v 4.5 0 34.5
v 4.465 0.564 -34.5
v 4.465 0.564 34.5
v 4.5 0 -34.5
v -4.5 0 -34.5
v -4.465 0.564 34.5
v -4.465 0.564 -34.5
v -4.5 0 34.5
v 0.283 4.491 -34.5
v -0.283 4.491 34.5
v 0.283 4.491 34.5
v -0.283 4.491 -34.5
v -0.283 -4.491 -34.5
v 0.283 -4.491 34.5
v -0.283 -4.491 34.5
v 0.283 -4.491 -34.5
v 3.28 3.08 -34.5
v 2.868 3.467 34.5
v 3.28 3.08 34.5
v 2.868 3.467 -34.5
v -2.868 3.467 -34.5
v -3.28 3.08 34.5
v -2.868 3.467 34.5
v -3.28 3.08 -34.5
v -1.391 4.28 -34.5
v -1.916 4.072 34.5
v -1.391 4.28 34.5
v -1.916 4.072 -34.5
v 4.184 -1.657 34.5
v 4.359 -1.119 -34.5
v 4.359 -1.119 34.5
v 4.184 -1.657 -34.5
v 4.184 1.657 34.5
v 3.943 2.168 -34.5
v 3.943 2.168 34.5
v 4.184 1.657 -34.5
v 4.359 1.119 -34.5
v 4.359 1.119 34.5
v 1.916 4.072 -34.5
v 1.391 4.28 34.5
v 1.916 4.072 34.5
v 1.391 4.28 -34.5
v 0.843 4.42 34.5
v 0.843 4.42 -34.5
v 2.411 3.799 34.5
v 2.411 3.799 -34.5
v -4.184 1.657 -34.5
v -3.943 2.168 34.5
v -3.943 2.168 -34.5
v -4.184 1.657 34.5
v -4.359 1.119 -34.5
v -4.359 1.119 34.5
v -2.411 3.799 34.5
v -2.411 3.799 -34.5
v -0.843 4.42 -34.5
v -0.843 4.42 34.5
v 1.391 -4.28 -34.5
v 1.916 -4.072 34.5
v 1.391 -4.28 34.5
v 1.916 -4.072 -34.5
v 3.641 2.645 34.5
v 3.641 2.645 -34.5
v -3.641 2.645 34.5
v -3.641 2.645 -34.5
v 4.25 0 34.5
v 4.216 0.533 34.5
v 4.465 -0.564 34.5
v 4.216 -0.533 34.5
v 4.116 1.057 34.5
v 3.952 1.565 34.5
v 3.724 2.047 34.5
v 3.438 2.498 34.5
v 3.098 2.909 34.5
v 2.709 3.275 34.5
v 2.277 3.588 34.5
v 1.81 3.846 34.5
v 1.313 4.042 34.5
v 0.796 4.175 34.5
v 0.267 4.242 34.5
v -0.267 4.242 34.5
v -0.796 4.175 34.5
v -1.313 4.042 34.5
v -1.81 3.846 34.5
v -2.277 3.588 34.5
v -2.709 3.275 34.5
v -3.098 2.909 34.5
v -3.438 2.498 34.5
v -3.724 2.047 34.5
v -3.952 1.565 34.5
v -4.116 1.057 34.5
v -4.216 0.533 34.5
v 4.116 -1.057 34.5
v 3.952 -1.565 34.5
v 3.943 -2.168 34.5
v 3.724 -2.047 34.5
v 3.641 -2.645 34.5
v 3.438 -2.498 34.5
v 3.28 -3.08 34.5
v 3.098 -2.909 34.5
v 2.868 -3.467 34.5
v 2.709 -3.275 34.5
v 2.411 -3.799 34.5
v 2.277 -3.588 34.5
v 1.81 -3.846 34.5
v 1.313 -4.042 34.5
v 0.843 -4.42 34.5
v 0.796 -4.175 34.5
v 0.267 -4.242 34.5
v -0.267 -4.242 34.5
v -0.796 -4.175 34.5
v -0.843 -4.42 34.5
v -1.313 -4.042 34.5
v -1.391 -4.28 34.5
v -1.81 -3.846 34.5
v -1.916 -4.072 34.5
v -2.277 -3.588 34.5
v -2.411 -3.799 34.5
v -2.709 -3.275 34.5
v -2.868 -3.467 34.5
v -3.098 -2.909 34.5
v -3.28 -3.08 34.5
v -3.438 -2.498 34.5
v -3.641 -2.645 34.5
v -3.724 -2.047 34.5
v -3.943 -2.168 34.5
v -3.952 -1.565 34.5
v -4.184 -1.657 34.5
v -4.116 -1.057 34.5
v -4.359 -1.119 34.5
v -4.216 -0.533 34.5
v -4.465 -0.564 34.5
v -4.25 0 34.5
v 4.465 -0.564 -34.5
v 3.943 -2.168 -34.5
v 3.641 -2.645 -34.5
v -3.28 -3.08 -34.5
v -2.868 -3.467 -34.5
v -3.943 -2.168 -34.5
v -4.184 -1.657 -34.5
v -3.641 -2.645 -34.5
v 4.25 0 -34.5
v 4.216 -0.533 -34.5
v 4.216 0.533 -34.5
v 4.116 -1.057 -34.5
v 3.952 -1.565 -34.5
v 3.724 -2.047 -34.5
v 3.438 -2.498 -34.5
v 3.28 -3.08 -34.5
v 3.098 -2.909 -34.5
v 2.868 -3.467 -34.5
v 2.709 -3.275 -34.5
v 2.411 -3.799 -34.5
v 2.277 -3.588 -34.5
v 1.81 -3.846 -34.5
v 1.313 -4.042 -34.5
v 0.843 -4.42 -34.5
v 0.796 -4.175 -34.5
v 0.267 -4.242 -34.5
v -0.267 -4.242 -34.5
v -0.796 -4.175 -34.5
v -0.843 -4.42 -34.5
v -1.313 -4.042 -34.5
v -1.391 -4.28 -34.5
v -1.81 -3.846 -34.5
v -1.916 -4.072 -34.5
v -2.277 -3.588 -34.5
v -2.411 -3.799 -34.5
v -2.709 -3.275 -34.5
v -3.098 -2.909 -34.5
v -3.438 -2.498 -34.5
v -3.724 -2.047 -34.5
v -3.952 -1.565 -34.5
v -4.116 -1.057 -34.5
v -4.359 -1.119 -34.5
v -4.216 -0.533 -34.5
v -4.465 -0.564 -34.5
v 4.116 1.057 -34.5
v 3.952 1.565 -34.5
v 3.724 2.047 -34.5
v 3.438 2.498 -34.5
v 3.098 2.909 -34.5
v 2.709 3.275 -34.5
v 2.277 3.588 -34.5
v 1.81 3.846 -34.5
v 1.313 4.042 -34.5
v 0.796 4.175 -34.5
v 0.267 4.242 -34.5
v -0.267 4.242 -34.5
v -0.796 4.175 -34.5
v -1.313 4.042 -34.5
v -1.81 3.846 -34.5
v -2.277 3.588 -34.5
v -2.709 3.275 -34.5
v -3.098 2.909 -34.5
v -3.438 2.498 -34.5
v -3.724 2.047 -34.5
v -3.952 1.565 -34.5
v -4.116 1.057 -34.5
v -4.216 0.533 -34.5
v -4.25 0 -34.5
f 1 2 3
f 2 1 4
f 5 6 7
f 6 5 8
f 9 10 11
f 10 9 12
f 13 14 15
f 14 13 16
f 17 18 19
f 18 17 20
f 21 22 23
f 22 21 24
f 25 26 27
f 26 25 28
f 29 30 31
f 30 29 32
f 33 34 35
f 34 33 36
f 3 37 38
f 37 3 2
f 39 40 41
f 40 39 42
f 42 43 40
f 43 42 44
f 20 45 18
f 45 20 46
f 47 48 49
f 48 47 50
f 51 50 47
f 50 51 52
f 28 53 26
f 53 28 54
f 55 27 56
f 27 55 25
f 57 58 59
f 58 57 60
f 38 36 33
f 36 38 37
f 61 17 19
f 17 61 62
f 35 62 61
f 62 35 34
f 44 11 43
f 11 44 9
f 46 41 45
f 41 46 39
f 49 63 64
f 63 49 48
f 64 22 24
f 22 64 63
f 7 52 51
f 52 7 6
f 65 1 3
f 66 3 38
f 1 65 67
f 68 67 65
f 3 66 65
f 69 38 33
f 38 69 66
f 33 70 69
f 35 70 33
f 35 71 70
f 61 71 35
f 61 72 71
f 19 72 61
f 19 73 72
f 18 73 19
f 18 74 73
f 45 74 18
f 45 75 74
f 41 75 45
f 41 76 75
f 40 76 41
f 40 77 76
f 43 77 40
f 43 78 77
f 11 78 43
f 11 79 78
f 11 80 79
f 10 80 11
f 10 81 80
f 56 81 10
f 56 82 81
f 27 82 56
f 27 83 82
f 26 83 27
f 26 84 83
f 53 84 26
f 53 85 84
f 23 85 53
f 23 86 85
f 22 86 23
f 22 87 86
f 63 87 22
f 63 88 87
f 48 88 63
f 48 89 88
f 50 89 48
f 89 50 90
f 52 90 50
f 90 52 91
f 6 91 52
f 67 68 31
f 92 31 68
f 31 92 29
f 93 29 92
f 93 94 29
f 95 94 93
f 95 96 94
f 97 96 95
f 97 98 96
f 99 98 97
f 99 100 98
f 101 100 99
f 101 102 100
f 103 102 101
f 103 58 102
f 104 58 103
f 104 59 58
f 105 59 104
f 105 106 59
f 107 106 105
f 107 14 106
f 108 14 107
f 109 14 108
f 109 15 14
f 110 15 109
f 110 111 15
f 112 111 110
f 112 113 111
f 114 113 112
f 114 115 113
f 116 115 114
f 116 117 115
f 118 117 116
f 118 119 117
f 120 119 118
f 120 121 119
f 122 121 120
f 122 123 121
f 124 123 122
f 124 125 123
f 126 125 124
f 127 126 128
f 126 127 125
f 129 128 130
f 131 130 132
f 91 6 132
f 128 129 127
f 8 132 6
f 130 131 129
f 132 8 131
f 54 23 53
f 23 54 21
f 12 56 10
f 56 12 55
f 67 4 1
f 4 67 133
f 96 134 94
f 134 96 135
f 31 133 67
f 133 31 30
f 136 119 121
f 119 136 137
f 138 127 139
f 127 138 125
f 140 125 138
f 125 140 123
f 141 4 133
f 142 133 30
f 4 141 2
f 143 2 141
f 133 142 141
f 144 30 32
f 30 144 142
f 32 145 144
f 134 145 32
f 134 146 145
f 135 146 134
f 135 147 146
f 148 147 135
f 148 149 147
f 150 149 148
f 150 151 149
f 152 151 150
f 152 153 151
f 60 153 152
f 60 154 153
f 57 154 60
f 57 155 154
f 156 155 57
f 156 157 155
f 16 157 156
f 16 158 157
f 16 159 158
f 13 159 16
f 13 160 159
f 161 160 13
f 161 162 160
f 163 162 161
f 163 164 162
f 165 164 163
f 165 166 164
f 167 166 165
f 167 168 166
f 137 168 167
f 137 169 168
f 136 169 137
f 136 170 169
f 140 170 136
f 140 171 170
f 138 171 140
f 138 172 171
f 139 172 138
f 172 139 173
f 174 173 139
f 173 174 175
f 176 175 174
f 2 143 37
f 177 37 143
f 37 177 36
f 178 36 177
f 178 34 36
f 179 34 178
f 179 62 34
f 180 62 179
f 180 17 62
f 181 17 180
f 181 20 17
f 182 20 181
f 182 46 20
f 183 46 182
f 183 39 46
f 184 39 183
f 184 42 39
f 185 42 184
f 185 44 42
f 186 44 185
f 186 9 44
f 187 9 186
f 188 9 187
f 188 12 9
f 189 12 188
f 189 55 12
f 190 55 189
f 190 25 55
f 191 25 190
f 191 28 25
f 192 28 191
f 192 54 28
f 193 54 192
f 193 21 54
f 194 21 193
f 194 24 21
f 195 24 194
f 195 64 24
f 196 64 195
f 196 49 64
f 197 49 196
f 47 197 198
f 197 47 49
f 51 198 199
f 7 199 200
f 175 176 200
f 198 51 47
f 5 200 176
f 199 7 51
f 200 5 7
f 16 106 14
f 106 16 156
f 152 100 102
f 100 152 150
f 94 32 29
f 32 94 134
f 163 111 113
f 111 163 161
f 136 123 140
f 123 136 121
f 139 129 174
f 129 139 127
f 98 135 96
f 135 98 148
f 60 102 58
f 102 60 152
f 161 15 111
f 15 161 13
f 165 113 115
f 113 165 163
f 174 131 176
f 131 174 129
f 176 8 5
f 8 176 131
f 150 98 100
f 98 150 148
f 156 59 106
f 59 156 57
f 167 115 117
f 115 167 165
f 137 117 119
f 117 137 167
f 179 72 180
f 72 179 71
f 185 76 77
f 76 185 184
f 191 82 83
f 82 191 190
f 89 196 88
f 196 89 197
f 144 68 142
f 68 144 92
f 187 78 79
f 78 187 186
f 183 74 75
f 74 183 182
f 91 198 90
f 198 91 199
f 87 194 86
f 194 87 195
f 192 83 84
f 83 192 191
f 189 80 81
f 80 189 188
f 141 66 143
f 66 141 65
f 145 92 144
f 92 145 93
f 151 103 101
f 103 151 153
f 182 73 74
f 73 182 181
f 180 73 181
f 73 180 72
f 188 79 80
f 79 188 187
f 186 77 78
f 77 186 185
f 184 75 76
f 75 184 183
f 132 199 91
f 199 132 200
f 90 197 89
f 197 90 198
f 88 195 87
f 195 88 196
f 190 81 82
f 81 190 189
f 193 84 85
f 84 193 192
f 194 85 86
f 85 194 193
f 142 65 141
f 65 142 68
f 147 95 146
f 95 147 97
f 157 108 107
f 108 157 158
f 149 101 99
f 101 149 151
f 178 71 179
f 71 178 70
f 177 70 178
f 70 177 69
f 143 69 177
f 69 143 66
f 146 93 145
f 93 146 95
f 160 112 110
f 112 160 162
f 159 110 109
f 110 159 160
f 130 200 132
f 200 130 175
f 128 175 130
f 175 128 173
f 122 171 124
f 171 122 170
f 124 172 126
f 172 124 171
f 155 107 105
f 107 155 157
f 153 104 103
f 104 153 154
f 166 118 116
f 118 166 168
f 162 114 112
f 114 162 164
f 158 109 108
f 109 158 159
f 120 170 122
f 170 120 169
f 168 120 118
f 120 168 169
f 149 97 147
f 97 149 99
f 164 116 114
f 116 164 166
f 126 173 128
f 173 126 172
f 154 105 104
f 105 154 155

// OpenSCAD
$fn = 50;


difference() {
	union() {
		translate(v = [0, 0, -34.5000000000]) {
			cylinder(h = 69, r = 4.5000000000);
		}
	}
	union() {
		translate(v = [0, 0, -100.0000000000]) {
			cylinder(h = 200, r = 4.2500000000);
		}
	}
}
